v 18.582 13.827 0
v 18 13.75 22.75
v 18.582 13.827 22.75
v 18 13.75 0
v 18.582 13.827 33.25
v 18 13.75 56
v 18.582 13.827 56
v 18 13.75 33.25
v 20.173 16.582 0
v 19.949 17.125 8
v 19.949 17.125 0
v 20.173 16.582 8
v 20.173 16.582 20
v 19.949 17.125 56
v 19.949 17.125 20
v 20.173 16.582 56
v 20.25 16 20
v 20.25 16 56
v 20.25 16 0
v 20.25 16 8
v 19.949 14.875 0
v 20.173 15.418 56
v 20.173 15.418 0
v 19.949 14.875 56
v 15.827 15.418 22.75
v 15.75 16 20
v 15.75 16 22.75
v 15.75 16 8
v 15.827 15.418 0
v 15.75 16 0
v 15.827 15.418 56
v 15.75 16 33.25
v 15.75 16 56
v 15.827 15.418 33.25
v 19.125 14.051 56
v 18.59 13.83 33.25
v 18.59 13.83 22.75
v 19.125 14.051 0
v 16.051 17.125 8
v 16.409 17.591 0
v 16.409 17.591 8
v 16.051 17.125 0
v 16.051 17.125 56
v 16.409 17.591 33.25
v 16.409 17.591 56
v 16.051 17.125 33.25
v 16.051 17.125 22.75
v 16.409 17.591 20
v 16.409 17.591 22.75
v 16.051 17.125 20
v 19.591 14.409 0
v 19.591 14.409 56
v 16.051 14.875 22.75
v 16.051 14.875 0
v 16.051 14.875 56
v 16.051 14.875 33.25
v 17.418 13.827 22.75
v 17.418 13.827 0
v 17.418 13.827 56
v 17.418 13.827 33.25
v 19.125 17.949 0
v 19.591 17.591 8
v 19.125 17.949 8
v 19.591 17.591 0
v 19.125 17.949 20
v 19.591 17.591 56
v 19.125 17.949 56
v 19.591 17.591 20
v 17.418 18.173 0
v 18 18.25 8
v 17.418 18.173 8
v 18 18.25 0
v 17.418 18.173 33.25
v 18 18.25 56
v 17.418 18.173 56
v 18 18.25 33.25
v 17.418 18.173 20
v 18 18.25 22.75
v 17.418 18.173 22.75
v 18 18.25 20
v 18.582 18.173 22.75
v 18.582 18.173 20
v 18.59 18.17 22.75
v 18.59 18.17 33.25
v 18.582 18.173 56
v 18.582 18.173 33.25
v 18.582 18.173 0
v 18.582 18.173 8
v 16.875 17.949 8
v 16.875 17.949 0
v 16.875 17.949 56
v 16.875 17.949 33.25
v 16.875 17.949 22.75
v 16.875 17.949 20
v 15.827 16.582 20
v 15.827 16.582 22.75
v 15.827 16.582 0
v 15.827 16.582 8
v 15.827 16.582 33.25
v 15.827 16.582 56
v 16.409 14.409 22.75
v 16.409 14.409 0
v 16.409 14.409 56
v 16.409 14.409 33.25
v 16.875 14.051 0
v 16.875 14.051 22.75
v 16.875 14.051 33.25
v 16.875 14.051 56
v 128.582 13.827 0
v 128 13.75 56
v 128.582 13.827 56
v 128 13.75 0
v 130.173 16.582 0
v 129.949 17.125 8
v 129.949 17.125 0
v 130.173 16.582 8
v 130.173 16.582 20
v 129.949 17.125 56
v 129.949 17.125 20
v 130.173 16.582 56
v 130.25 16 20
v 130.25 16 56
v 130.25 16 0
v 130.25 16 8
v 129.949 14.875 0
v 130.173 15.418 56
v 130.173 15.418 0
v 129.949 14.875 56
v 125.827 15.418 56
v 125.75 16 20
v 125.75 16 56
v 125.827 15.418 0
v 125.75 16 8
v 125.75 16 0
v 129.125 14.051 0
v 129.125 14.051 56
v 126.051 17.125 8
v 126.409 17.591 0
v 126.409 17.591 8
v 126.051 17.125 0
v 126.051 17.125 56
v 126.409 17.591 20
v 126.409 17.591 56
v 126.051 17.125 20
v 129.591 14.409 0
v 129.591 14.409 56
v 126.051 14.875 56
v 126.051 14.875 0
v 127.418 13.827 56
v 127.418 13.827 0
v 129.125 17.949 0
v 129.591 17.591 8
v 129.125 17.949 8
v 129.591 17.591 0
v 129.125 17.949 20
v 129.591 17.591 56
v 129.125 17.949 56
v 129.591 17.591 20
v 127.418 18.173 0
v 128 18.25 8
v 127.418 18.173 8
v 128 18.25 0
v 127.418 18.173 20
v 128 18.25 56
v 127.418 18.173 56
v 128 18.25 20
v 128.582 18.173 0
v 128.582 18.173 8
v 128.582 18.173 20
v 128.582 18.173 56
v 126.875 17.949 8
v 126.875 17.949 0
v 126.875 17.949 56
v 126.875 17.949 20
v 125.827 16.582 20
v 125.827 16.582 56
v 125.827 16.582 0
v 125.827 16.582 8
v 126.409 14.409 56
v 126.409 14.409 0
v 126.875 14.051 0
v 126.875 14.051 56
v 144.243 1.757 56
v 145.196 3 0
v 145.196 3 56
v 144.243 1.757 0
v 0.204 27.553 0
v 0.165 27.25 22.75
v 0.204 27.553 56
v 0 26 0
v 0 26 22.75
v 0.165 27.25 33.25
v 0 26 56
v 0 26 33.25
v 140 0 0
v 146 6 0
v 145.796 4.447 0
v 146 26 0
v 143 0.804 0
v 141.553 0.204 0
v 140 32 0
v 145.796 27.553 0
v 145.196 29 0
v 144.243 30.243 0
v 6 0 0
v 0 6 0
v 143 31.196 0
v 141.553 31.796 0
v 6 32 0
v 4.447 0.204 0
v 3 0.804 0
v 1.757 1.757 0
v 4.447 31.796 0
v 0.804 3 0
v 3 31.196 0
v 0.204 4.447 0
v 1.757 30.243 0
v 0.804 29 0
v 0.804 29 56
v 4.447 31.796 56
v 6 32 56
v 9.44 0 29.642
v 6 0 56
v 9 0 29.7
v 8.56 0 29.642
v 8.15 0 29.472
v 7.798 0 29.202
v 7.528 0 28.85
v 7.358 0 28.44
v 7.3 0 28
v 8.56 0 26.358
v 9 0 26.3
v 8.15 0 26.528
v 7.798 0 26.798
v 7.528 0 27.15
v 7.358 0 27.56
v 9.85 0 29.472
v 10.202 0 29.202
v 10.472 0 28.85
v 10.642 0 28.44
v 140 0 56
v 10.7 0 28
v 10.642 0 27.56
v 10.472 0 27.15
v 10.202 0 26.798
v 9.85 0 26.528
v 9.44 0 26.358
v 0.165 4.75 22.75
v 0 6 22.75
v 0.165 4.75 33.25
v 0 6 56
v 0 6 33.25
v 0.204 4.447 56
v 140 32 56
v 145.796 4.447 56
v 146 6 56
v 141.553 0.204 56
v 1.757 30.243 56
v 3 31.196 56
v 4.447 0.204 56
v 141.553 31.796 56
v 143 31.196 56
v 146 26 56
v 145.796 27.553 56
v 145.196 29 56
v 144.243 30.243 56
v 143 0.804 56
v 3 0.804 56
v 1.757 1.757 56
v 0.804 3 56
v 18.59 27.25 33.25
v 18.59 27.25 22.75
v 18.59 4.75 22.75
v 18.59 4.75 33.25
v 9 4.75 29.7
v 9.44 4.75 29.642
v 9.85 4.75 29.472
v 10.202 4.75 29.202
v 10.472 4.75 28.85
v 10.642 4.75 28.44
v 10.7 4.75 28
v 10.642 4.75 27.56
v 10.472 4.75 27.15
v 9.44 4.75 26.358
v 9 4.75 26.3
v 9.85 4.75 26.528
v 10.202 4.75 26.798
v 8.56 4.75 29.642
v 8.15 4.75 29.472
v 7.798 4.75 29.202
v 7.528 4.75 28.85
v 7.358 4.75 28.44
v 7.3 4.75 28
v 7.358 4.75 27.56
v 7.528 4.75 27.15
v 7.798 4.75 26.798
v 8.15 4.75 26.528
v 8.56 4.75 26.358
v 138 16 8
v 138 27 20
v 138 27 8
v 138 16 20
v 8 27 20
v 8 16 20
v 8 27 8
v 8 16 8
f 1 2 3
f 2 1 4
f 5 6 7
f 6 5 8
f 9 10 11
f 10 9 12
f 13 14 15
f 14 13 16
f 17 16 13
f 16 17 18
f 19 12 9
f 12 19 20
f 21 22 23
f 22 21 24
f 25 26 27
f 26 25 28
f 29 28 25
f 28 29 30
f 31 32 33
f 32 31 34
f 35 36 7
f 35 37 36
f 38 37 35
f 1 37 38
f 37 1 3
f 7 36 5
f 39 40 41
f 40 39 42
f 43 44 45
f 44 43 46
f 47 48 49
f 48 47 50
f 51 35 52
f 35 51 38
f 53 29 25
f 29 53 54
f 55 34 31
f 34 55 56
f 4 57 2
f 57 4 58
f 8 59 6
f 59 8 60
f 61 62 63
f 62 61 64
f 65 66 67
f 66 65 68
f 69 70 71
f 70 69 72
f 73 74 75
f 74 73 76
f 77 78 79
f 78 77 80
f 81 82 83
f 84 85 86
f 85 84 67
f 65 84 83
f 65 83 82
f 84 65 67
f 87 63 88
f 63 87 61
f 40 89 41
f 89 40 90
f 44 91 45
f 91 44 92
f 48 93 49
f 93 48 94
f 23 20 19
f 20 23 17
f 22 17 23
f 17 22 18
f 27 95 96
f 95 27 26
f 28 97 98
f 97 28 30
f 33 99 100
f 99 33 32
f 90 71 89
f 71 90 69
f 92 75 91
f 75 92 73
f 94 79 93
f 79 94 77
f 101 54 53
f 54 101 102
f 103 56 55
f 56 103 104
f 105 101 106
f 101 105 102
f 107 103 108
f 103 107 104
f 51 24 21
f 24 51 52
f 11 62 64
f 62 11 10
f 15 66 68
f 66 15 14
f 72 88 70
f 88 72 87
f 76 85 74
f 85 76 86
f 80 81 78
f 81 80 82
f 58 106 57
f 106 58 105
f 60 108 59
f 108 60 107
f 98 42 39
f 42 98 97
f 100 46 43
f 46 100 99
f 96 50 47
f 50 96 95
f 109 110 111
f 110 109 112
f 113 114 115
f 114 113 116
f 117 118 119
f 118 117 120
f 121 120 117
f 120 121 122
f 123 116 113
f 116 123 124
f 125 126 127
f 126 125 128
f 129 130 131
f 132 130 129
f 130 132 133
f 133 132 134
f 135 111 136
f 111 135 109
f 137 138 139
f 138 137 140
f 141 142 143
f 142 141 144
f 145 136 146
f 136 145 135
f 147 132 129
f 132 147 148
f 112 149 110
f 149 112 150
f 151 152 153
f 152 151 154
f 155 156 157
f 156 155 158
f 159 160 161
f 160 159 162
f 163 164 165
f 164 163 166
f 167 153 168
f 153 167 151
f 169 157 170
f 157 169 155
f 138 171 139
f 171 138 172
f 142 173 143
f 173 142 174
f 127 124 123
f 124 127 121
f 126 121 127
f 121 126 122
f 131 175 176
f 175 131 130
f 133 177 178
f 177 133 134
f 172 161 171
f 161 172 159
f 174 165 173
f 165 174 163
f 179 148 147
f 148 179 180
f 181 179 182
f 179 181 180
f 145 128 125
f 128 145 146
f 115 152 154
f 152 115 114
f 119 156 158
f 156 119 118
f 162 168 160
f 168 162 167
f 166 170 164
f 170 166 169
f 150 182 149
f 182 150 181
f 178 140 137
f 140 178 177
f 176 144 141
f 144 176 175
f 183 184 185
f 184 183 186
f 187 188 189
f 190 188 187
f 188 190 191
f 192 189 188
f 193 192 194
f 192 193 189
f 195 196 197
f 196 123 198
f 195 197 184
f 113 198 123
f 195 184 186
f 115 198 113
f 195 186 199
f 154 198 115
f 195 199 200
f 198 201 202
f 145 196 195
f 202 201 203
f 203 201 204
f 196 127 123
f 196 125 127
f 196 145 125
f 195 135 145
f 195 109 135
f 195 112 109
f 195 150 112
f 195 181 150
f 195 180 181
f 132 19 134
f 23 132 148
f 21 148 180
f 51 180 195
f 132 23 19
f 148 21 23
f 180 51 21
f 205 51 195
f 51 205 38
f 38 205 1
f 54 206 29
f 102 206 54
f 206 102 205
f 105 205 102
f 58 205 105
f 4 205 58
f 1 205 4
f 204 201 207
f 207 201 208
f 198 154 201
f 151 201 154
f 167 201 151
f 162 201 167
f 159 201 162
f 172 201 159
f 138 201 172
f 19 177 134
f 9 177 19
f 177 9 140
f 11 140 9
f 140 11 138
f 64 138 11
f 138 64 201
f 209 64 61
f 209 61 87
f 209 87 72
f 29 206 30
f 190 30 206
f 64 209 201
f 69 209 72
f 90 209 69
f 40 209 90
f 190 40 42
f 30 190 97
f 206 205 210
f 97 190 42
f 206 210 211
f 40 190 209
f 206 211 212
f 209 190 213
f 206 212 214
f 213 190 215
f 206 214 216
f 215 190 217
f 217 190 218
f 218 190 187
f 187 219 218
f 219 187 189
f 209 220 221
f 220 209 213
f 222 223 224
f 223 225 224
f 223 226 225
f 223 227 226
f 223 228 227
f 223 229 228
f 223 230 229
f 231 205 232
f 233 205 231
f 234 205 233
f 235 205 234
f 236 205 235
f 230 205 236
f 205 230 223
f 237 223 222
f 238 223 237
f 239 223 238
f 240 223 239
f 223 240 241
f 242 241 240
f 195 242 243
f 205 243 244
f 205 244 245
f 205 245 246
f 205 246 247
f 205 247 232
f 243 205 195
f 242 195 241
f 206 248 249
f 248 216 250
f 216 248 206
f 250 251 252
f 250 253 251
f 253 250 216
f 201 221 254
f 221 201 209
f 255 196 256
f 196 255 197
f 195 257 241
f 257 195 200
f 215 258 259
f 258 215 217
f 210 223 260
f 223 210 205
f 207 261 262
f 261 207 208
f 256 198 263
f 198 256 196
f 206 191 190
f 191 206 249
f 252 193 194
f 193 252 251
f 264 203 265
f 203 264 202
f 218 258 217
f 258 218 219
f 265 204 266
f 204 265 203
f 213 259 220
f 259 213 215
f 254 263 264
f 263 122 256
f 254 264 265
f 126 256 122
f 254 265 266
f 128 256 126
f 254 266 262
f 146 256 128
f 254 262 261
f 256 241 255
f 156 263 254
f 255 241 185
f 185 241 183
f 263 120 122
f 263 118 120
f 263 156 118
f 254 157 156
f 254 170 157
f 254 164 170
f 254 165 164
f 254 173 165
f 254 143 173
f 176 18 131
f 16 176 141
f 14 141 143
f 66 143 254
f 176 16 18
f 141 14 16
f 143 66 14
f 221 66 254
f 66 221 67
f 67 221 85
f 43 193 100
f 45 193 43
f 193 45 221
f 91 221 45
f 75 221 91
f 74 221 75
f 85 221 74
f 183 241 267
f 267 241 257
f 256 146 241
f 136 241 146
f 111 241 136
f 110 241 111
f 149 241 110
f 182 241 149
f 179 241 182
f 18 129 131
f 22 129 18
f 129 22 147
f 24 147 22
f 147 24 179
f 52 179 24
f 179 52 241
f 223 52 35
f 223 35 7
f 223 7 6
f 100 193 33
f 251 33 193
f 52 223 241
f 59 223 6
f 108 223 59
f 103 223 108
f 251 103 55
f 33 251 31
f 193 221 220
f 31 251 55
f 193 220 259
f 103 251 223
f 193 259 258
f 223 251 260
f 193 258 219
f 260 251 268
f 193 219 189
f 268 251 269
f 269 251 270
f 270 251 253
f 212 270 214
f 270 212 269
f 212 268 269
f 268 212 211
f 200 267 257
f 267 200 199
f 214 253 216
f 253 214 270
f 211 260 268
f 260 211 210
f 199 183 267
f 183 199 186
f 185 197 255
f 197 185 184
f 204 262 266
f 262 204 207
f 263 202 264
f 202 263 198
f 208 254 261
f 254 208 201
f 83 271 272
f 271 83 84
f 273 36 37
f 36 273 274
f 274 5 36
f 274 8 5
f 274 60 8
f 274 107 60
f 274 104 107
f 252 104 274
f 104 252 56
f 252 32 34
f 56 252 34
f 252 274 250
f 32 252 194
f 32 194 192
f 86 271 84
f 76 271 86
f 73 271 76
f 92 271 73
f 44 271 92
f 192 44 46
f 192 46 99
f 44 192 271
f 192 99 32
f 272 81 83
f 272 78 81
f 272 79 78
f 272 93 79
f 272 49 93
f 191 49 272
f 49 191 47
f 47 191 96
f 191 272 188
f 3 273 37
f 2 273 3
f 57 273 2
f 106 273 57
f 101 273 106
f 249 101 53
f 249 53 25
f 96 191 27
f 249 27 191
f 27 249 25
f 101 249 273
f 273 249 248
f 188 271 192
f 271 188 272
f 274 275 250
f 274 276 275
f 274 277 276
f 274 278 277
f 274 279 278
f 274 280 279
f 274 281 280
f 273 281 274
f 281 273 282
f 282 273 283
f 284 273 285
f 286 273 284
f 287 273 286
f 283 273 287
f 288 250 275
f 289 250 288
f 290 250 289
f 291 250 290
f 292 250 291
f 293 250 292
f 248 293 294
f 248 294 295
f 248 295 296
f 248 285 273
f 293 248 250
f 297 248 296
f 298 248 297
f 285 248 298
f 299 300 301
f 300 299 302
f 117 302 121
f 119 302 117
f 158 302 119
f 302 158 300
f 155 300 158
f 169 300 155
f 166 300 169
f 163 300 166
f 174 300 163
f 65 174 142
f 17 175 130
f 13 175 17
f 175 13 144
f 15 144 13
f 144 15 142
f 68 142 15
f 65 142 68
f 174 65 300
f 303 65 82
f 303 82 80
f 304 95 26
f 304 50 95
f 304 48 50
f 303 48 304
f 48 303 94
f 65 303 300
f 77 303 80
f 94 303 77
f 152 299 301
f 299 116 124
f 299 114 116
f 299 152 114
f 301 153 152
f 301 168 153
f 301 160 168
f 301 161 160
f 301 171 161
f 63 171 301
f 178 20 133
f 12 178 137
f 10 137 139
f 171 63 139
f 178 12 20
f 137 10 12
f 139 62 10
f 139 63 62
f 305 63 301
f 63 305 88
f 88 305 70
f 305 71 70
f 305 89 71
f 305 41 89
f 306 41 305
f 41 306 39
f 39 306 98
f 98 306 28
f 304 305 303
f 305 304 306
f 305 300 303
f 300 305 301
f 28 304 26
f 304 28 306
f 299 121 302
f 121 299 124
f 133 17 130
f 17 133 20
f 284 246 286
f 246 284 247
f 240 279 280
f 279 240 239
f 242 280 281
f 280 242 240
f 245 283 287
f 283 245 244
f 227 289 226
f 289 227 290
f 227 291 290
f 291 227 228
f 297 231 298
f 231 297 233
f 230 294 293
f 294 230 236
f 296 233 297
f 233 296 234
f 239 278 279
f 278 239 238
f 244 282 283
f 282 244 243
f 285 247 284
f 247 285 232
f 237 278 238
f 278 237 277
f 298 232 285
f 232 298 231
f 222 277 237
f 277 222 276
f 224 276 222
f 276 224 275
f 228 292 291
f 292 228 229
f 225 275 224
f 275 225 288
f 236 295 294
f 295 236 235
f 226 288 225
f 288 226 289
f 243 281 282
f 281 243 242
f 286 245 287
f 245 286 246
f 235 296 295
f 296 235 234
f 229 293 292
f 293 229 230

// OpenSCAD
// file: 00_parameters.scad
// TenderCells DoorCell V1 shared parameters
// Units: millimeters

overall_w = 438;
overall_h = 368;
frame_depth = 56;

clear_w = 242;
clear_h = 312;

rail_thick = 32;
jamb_w = 48;
motor_jamb_w = 78;

// Printability targets
target_bed_xy = 220;
comfortable_part_max = 180;

// Modular frame split dimensions
top_seg_len = overall_w / 3;
bottom_seg_len = overall_w / 3;
left_jamb_seg_h = overall_h / 2;
right_lower_h = 118;
right_motor_h = 156;
right_upper_h = overall_h - right_lower_h - right_motor_h;

// Low-cost electronics envelope used by DoorCell V1.4.
// These dimensions are based on common generic modules, not a custom PCB.
esp32_board = [58, 31, 8];
drv8871_board = [31, 26, 7];
current_sensor_board = [26, 22, 7];
lm2596_board = [44, 22, 14];
inline_fuse_body = [45, 15, 14];
cn3065_board = [44, 24, 8];
electronics_clearance = 1.5;
controller_wall = 3;
controller_box_w = 170;
controller_box_h = 115;
controller_box_d = 46;
controller_lid_insert_offset = 11;
controller_m12_gland_d = 12.8;
controller_m10_gland_d = 10.6;
controller_m8_gland_d = 8.4;
controller_button_d = 16.2;

// Brass heat-set/push-in insert features.
insert_post_d = 8.0;
insert_post_h = 8.0;
insert_pilot_d = 4.6;
insert_pilot_depth = 6.5;
hold_down_screw_clearance = 3.4;

// Motor envelope for common 25GA/JGA25-370 gearmotors with optional encoder.
motor_body_d = 25.0;
motor_body_clearance_d = 27.2;
motor_body_len = 65;
motor_encoder_clearance = 16;
motor_mount_plate = [72, 92, 12];
motor_mount_cradle = [54, 74, 28];

// Optional solar add-on.
solar_panel_w = 145;
solar_panel_h = 145;
solar_panel_t = 4.0;
solar_panel_frame_border = 10;
solar_panel_frame_w = solar_panel_w + 2*solar_panel_frame_border;
solar_panel_frame_h = solar_panel_h + 2*solar_panel_frame_border;
solar_panel_back_depth = 14;
solar_panel_lip_overlap = 3;
solar_ball_d = 22;
solar_ball_socket_clearance = 0.45;
solar_mount_m5 = 5.4;

// Tongue-and-groove frame joints
// Fit target: common FDM printers with PETG/ASA.
// Clearance is per side, so sockets add 2x this value.
tongue_len = 18;
tongue_w = 22;
tongue_z = 10;
tongue_clearance_side = 0.25;
tongue_socket_depth_extra = 0.60;

door_w = 270;
door_h = 326;
door_t = 8;

track_gap = 11;
track_depth = 12;

// Rack-and-pinion drive
// Metric module gear math:
// circular_pitch = PI * module
// pitch_diameter = module * tooth_count
// outside_diameter = module * (tooth_count + 2)
// root_diameter = module * (tooth_count - 2.5)
gear_module = 2.0;
pressure_angle = 20;
gear_backlash = 0.20; // mm removed from rack tooth thickness at pitch line

pinion_teeth = 16;
pinion_pitch_d = gear_module * pinion_teeth;
pinion_pitch_radius = pinion_pitch_d / 2;
pinion_outer_d = gear_module * (pinion_teeth + 2);
pinion_outer_radius = pinion_outer_d / 2;
pinion_root_d = gear_module * (pinion_teeth - 2.5);
pinion_root_radius = pinion_root_d / 2;
pinion_thick = 12;
shaft_d = 6.2;

rack_tooth_count = 15;
rack_circular_pitch = 3.141592653589793 * gear_module;
rack_len = rack_circular_pitch * rack_tooth_count;
rack_w = 18;
rack_t = 6;
rack_addendum = gear_module;
rack_dedendum = 1.25 * gear_module;
rack_tooth_h = rack_addendum + rack_dedendum;
rack_pitch_line_z = rack_dedendum;
rack_tooth_pitch_thickness = rack_circular_pitch / 2 - gear_backlash;
rack_tooth_top_w = rack_tooth_pitch_thickness - 2 * rack_addendum * tan(pressure_angle);
rack_tooth_root_w = rack_tooth_pitch_thickness + 2 * rack_dedendum * tan(pressure_angle);

screw_m3 = 3.4;
screw_m4 = 4.5;
insert_m3 = 4.6;

eps = 0.01;

module rounded_box(size=[10,10,10], r=2) {
  hull() {
    translate([r,r,0]) cylinder(h=size[2], r=r, $fn=24);
    translate([size[0]-r,r,0]) cylinder(h=size[2], r=r, $fn=24);
    translate([r,size[1]-r,0]) cylinder(h=size[2], r=r, $fn=24);
    translate([size[0]-r,size[1]-r,0]) cylinder(h=size[2], r=r, $fn=24);
  }
}

module m3_clearance_hole(h=20) {
  cylinder(h=h, d=screw_m3, $fn=24);
}

module m4_clearance_hole(h=20) {
  cylinder(h=h, d=screw_m4, $fn=24);
}

module heat_insert_hole(h=6) {
  cylinder(h=h, d=insert_m3, $fn=24);
}

module heat_insert_post(h=insert_post_h, d=insert_post_d) {
  difference() {
    cylinder(h=h, d=d, $fn=32);
    translate([0,0,h-insert_pilot_depth+eps])
      cylinder(h=insert_pilot_depth+eps, d=insert_pilot_d, $fn=24);
  }
}

module m3_hold_down_slot(length=10, h=4) {
  hull() {
    translate([-length/2,0,0]) cylinder(h=h, d=hold_down_screw_clearance, $fn=20);
    translate([ length/2,0,0]) cylinder(h=h, d=hold_down_screw_clearance, $fn=20);
  }
}

module rail_channel(length=100) {
  cube([length, track_gap, track_depth]);
}

module frame_tongue_x() {
  rounded_box([tongue_len, tongue_w, tongue_z], r=1.5);
}

module frame_socket_x() {
  cube([
    tongue_len + tongue_socket_depth_extra,
    tongue_w + 2*tongue_clearance_side,
    tongue_z + 2*tongue_clearance_side
  ]);
}

module frame_tongue_y() {
  rounded_box([tongue_w, tongue_len, tongue_z], r=1.5);
}

module frame_socket_y() {
  cube([
    tongue_w + 2*tongue_clearance_side,
    tongue_len + tongue_socket_depth_extra,
    tongue_z + 2*tongue_clearance_side
  ]);
}

module rack_teeth(len=rack_len) {
  teeth = floor(len / rack_circular_pitch);
  for (i=[0:teeth-1]) {
    center = i*rack_circular_pitch + rack_circular_pitch/2;
    translate([0, 0, rack_t-0.20])
      linear_extrude(height=rack_w)
        polygon(points=[
          [center - rack_tooth_root_w/2, 0],
          [center + rack_tooth_root_w/2, 0],
          [center + rack_tooth_top_w/2, rack_tooth_h],
          [center - rack_tooth_top_w/2, rack_tooth_h]
        ]);
  }
}

function polar_point(r, a) = [r * cos(a), r * sin(a)];
// file: frame_modular_common.scad
include <00_parameters.scad>

module horizontal_frame_segment(seg_len=top_seg_len, rail_kind="top", joint_left="socket", joint_right="tongue") {
  difference() {
    union() {
      rounded_box([seg_len, rail_thick, frame_depth], r=6);

      if (joint_right == "tongue") {
        translate([seg_len - eps, rail_thick/2 - tongue_w/2, frame_depth/2 - tongue_z/2])
          frame_tongue_x();
      }
    }

    // Tongue receiver from previous segment.
    if (joint_left == "socket") {
      translate([
        -eps,
        rail_thick/2 - (tongue_w + 2*tongue_clearance_side)/2,
        frame_depth/2 - (tongue_z + 2*tongue_clearance_side)/2
      ])
        frame_socket_x();
    }

    // Sliding door guide channel.
    if (rail_kind == "top") {
      translate([8, rail_thick-track_gap-5, 8])
        rail_channel(length=seg_len-16);
    } else {
      translate([8, 5, frame_depth-track_depth-8])
        rail_channel(length=seg_len-16);

      // Drain slots for bottom rail.
      for (x=[seg_len*0.25, seg_len*0.5, seg_len*0.75]) {
        translate([x-10, rail_thick/2-2, frame_depth-4])
          cube([20, 4, 10]);
      }
    }

    // Coop mounting holes.
    for (x=[18, seg_len-18]) {
      translate([x, rail_thick/2, -eps])
        m4_clearance_hole(h=frame_depth+2);
    }

    // Cross-bolt holes near frame split joints.
    if (joint_left == "socket") {
      translate([tongue_len/2, rail_thick/2, frame_depth/2])
        rotate([90,0,0]) m3_clearance_hole(h=rail_thick+2);
    }
    if (joint_right == "tongue") {
      translate([seg_len + tongue_len/2 - 2, rail_thick/2, frame_depth/2])
        rotate([90,0,0]) m3_clearance_hole(h=rail_thick+2);
    }
  }
}

module left_jamb_segment(seg_h=left_jamb_seg_h, joint_bottom="socket", joint_top="tongue", corner_bottom=false, corner_top=false) {
  difference() {
    union() {
      rounded_box([jamb_w, seg_h, frame_depth], r=6);

      if (joint_top == "tongue") {
        translate([jamb_w/2 - tongue_w/2, seg_h - eps, frame_depth/2 - tongue_z/2])
          frame_tongue_y();
      }
    }

    if (joint_bottom == "socket") {
      translate([
        jamb_w/2 - (tongue_w + 2*tongue_clearance_side)/2,
        -eps,
        frame_depth/2 - (tongue_z + 2*tongue_clearance_side)/2
      ])
        frame_socket_y();
    }

    // Door pocket relief.
    translate([jamb_w-18, 0, 8])
      cube([16, seg_h, frame_depth-16]);

    // Coop mounting holes.
    for (y=[seg_h*0.28, seg_h*0.72]) {
      translate([jamb_w/2, y, -eps]) m4_clearance_hole(h=frame_depth+2);
    }

    // Rail-to-jamb corner holes.
    if (corner_bottom) {
      translate([jamb_w-10, 16, frame_depth/2])
        rotate([0,90,0]) m3_clearance_hole(h=20);
    }
    if (corner_top) {
      translate([jamb_w-10, seg_h-16, frame_depth/2])
        rotate([0,90,0]) m3_clearance_hole(h=20);
    }

    // Cross-bolt through tongue-and-groove.
    if (joint_bottom == "socket") {
      translate([jamb_w/2, tongue_len/2, frame_depth/2])
        rotate([0,90,0]) m3_clearance_hole(h=jamb_w+2);
    }
    if (joint_top == "tongue") {
      translate([jamb_w/2, seg_h + tongue_len/2 - 2, frame_depth/2])
        rotate([0,90,0]) m3_clearance_hole(h=jamb_w+2);
    }
  }
}

module right_jamb_segment(seg_h=120, has_motor_bay=false, joint_bottom="socket", joint_top="tongue", corner_bottom=false, corner_top=false) {
  difference() {
    union() {
      rounded_box([motor_jamb_w, seg_h, frame_depth], r=6);

      if (has_motor_bay) {
        translate([motor_jamb_w-8, 20, 0])
          rounded_box([70, seg_h-32, frame_depth], r=5);
      }

      if (joint_top == "tongue") {
        translate([motor_jamb_w/2 - tongue_w/2, seg_h - eps, frame_depth/2 - tongue_z/2])
          frame_tongue_y();
      }
    }

    if (joint_bottom == "socket") {
      translate([
        motor_jamb_w/2 - (tongue_w + 2*tongue_clearance_side)/2,
        -eps,
        frame_depth/2 - (tongue_z + 2*tongue_clearance_side)/2
      ])
        frame_socket_y();
    }

    // Door pocket relief.
    translate([0, 0, 8])
      cube([20, seg_h, frame_depth-16]);

    if (has_motor_bay) {
      // Motor cassette pocket sized for the revised 25GA mount.
      translate([motor_jamb_w+5, 33, 8])
        cube([62, 92, 40]);

      // Pinion/rack engagement window.
      translate([4, 68, 16])
        cube([46, 36, 24]);

      // Motor/control harness pass-through for M12-style cable gland routing.
      translate([motor_jamb_w+26, seg_h-42, 16])
        cube([24, 34, 26]);

      // Limit switch lead pass-throughs.
      translate([motor_jamb_w-2, 18, 18])
        cube([16, 18, 16]);
      translate([motor_jamb_w-2, seg_h-36, 18])
        cube([16, 18, 16]);
    }

    // Coop mounting holes.
    for (y=[seg_h*0.28, seg_h*0.72]) {
      translate([motor_jamb_w/2, y, -eps]) m4_clearance_hole(h=frame_depth+2);
    }

    // Rail-to-jamb corner holes.
    if (corner_bottom) {
      translate([10, 16, frame_depth/2])
        rotate([0,90,0]) m3_clearance_hole(h=20);
    }
    if (corner_top) {
      translate([10, seg_h-16, frame_depth/2])
        rotate([0,90,0]) m3_clearance_hole(h=20);
    }

    // Cross-bolt through tongue-and-groove.
    if (joint_bottom == "socket") {
      translate([motor_jamb_w/2, tongue_len/2, frame_depth/2])
        rotate([0,90,0]) m3_clearance_hole(h=motor_jamb_w+2);
    }
    if (joint_top == "tongue") {
      translate([motor_jamb_w/2, seg_h + tongue_len/2 - 2, frame_depth/2])
        rotate([0,90,0]) m3_clearance_hole(h=motor_jamb_w+2);
    }
  }
}
// main file
include <frame_modular_common.scad>

horizontal_frame_segment(seg_len=top_seg_len, rail_kind="top", joint_left="socket", joint_right="none");
